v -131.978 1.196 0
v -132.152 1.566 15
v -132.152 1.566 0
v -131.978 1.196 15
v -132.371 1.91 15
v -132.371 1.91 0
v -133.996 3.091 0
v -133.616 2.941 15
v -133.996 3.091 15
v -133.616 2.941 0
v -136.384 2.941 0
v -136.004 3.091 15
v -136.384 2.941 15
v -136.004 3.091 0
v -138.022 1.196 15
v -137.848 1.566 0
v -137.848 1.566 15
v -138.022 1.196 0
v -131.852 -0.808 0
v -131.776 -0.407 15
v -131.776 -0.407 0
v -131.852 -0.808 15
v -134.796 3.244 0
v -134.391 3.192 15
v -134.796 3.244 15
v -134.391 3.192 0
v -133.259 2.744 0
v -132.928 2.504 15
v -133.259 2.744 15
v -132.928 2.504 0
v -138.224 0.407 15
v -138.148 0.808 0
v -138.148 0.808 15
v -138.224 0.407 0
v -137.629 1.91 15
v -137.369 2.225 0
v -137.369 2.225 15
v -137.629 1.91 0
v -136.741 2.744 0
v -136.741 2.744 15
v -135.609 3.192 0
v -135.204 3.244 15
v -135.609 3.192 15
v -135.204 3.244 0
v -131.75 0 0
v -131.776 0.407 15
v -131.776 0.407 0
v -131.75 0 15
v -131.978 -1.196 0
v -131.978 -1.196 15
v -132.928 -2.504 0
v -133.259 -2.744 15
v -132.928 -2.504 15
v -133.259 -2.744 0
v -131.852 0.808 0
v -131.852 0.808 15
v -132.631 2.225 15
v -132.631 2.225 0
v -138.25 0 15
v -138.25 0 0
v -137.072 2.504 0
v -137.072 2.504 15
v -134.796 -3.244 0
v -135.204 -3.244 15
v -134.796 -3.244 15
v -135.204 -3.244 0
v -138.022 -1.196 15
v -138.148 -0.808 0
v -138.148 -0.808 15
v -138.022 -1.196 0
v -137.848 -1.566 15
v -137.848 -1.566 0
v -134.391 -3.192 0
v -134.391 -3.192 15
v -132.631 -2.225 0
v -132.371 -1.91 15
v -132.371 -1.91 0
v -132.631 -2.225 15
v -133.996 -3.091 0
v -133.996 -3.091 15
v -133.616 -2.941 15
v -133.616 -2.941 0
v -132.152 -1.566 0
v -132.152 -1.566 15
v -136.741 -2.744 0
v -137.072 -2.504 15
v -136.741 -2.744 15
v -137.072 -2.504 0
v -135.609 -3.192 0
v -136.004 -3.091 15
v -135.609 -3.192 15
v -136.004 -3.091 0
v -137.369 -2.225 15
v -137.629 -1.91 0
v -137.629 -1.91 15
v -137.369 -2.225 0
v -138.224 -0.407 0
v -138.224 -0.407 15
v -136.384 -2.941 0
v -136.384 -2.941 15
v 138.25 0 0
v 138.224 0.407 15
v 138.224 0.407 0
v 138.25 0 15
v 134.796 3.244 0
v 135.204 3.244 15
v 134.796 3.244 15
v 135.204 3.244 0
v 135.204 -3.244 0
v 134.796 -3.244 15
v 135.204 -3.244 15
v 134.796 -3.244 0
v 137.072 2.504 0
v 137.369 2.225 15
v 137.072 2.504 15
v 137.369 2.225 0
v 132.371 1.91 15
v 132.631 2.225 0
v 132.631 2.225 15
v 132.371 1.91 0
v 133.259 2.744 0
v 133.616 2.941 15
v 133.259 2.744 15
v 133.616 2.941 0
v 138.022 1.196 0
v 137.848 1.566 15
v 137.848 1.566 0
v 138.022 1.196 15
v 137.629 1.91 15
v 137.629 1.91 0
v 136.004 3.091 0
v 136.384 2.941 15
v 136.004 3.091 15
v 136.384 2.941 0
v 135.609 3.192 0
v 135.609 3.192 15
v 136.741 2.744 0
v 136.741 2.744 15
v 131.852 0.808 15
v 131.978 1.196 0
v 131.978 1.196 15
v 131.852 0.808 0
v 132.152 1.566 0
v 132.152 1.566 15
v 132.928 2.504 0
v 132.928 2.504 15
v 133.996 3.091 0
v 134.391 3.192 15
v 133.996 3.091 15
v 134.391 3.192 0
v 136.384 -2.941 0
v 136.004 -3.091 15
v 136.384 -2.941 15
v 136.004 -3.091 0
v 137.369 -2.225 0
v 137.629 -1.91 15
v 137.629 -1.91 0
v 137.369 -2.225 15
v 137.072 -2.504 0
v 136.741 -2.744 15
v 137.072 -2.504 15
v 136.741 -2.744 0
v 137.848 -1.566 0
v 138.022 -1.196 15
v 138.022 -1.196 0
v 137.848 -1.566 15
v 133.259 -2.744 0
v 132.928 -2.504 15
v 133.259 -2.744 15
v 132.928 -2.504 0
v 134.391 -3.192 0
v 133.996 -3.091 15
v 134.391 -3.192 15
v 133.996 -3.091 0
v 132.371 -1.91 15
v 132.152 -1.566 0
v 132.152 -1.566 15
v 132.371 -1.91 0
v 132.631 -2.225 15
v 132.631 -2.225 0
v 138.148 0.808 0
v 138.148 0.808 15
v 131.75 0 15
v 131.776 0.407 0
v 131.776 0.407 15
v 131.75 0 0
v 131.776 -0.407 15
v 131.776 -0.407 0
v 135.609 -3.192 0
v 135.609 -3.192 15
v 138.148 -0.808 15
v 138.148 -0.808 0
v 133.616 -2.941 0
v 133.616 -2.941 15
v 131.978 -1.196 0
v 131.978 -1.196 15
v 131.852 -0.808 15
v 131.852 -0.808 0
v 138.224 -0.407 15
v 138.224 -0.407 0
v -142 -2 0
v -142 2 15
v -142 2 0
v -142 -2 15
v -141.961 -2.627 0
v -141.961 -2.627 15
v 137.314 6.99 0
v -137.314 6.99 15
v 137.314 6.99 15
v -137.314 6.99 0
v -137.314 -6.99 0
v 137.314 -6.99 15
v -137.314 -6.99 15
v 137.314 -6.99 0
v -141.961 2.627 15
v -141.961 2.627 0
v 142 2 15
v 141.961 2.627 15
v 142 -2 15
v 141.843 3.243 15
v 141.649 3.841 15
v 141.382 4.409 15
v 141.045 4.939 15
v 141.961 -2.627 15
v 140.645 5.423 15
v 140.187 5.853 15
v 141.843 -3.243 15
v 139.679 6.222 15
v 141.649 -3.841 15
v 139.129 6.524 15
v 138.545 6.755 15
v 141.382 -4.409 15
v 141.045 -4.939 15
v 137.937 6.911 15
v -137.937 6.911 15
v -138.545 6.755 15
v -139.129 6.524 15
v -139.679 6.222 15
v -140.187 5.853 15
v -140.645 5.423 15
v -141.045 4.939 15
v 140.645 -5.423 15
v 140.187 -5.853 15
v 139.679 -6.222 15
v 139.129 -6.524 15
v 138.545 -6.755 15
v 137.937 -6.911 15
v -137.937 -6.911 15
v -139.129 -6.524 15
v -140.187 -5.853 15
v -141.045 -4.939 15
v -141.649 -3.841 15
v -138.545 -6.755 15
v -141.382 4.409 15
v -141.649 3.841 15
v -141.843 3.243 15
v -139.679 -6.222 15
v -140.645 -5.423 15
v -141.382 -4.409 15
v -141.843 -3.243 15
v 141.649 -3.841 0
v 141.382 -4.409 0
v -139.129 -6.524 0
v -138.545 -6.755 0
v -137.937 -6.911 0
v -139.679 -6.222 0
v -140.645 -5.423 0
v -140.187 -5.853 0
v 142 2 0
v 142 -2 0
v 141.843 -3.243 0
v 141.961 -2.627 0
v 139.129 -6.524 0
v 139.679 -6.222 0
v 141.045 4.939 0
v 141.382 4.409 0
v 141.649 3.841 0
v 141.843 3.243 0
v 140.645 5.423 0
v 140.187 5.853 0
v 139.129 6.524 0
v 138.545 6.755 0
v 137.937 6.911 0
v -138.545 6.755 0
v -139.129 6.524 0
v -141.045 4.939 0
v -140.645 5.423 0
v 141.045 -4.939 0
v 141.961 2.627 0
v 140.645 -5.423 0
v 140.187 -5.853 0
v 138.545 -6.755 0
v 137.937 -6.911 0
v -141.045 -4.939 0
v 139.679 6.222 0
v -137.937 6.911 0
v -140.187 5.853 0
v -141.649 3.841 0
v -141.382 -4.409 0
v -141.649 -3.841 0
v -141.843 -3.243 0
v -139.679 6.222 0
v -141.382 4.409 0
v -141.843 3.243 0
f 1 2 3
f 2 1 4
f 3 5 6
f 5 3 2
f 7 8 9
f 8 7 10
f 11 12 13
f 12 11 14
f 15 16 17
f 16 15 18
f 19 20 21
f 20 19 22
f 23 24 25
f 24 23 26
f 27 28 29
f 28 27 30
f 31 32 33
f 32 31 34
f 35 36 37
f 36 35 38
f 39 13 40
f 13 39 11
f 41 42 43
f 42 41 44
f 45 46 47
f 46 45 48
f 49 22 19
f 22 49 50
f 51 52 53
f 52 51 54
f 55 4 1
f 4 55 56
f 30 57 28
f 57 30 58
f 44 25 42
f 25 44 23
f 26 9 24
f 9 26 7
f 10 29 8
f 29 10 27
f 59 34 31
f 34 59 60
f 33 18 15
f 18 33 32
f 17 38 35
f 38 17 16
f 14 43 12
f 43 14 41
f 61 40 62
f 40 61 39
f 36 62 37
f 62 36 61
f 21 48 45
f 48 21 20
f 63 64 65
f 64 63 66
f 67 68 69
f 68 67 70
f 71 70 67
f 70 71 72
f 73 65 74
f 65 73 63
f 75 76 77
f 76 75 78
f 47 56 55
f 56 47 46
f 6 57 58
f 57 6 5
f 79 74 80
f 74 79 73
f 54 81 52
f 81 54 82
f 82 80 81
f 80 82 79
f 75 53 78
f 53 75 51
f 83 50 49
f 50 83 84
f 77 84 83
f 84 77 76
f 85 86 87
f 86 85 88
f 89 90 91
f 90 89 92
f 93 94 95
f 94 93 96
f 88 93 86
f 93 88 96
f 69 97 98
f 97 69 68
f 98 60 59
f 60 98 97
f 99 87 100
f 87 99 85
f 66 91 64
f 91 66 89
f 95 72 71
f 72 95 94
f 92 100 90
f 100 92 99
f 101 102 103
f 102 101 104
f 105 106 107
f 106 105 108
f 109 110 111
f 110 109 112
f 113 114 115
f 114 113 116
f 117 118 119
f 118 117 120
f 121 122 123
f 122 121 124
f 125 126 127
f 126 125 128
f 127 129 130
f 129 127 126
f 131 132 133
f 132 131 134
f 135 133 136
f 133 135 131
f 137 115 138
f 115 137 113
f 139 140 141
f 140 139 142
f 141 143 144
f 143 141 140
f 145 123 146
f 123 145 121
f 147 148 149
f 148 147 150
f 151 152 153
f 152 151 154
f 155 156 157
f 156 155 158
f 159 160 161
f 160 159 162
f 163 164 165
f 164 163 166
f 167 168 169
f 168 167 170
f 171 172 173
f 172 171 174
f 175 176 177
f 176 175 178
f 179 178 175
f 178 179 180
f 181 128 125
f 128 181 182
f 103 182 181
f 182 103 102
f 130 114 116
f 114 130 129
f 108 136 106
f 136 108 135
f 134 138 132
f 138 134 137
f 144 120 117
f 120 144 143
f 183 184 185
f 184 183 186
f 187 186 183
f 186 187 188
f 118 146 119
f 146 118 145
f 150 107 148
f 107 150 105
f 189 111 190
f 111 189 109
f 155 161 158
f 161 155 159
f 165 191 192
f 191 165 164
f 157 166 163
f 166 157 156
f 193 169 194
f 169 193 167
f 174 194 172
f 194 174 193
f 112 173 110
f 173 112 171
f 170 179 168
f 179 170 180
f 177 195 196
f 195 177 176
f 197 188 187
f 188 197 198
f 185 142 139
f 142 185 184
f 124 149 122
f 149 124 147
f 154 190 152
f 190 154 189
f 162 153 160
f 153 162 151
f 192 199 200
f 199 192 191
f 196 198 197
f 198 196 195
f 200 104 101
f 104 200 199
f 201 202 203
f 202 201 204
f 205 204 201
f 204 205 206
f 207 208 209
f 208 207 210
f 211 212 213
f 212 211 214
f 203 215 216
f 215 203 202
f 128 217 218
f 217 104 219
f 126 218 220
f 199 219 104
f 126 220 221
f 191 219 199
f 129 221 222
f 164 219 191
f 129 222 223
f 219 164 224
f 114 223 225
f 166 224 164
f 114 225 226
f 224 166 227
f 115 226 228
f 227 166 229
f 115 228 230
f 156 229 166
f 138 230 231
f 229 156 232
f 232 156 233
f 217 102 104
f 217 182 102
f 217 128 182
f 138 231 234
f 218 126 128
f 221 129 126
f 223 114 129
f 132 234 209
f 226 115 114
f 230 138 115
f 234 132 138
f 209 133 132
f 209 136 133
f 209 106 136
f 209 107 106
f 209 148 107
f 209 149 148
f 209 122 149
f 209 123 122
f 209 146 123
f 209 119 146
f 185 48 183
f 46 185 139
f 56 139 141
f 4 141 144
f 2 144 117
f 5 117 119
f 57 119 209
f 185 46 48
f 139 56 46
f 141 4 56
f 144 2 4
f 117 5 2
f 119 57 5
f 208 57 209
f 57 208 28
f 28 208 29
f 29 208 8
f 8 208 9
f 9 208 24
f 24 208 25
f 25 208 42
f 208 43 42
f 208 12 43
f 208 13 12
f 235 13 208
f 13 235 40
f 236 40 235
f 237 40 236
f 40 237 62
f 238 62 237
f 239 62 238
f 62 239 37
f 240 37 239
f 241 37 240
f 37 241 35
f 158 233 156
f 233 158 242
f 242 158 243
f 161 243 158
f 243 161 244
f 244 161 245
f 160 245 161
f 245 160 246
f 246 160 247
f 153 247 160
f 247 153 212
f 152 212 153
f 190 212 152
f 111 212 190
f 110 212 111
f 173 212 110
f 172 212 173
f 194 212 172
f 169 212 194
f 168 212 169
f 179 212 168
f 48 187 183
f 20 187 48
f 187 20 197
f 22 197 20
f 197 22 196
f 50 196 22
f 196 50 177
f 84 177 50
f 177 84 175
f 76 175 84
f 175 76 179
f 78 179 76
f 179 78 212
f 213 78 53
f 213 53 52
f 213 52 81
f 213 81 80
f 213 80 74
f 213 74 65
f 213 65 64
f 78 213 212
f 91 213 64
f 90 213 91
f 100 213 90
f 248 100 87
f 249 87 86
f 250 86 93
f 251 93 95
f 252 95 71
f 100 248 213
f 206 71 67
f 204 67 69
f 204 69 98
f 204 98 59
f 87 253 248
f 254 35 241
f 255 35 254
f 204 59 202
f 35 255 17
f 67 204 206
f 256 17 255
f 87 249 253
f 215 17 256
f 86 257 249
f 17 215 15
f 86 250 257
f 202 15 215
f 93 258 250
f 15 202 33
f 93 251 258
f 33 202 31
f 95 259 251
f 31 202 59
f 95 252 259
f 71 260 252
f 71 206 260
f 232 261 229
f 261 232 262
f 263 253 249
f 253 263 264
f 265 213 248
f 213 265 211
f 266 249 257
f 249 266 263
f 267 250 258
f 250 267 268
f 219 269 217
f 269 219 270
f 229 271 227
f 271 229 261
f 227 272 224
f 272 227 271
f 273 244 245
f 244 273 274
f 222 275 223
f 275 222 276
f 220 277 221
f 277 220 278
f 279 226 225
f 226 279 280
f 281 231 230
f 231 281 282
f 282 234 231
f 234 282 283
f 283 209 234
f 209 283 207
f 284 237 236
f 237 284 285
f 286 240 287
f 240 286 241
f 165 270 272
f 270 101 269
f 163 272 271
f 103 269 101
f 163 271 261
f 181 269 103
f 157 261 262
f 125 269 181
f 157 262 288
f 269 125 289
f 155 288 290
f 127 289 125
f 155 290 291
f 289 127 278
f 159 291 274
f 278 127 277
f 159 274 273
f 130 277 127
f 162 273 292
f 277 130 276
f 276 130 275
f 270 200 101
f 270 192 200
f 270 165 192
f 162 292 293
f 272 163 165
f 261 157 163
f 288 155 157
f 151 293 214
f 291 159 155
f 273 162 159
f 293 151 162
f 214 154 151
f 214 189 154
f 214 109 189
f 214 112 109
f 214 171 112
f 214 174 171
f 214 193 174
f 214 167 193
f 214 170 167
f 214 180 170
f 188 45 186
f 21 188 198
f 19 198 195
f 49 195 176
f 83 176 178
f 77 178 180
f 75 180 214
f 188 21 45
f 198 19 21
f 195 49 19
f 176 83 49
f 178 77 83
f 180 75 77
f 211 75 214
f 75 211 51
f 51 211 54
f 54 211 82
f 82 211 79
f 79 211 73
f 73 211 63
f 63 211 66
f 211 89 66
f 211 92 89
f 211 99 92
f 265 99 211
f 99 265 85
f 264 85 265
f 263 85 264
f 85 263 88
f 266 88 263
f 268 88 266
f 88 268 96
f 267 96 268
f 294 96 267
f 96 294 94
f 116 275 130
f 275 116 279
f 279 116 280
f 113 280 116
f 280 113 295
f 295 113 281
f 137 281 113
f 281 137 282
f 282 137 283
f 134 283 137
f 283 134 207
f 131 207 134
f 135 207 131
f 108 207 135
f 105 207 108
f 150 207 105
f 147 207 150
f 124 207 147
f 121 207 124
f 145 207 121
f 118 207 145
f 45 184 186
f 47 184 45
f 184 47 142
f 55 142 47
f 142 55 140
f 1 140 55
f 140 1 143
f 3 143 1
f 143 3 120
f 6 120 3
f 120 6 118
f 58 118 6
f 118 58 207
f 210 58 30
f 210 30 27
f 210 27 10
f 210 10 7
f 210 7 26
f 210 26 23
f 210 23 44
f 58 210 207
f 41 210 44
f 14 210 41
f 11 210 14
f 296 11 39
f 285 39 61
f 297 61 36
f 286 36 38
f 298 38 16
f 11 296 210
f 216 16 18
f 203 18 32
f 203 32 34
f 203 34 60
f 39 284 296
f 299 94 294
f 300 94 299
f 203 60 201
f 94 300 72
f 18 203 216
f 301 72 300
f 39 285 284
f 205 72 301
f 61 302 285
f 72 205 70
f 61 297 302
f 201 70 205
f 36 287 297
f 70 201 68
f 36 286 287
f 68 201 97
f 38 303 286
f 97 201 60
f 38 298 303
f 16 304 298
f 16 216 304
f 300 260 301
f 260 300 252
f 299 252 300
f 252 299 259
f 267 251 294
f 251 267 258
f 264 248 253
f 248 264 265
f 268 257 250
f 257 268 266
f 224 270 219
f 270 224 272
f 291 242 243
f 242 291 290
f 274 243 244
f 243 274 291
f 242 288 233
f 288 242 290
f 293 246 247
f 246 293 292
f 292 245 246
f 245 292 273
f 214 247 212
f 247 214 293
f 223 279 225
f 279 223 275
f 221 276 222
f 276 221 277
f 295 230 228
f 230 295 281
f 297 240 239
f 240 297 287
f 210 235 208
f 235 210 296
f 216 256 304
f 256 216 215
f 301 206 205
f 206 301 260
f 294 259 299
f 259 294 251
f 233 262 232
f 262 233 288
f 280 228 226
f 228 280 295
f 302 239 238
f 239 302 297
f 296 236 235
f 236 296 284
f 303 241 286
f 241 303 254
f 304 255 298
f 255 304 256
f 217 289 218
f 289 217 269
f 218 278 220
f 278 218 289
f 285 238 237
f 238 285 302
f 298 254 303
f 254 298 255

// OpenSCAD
$fn = 50;


difference() {
	union() {
		hull() {
			translate(v = [-137.0000000000, 2.0000000000, 0]) {
				cylinder(h = 15, r = 5);
			}
			translate(v = [137.0000000000, 2.0000000000, 0]) {
				cylinder(h = 15, r = 5);
			}
			translate(v = [-137.0000000000, -2.0000000000, 0]) {
				cylinder(h = 15, r = 5);
			}
			translate(v = [137.0000000000, -2.0000000000, 0]) {
				cylinder(h = 15, r = 5);
			}
		}
	}
	union() {
		translate(v = [-135.0000000000, 0.0000000000, -100.0000000000]) {
			cylinder(h = 200, r = 3.2500000000);
		}
		translate(v = [-135.0000000000, 0.0000000000, -100.0000000000]) {
			cylinder(h = 200, r = 3.2500000000);
		}
		translate(v = [135.0000000000, 0.0000000000, -100.0000000000]) {
			cylinder(h = 200, r = 3.2500000000);
		}
		translate(v = [135.0000000000, 0.0000000000, -100.0000000000]) {
			cylinder(h = 200, r = 3.2500000000);
		}
	}
}
